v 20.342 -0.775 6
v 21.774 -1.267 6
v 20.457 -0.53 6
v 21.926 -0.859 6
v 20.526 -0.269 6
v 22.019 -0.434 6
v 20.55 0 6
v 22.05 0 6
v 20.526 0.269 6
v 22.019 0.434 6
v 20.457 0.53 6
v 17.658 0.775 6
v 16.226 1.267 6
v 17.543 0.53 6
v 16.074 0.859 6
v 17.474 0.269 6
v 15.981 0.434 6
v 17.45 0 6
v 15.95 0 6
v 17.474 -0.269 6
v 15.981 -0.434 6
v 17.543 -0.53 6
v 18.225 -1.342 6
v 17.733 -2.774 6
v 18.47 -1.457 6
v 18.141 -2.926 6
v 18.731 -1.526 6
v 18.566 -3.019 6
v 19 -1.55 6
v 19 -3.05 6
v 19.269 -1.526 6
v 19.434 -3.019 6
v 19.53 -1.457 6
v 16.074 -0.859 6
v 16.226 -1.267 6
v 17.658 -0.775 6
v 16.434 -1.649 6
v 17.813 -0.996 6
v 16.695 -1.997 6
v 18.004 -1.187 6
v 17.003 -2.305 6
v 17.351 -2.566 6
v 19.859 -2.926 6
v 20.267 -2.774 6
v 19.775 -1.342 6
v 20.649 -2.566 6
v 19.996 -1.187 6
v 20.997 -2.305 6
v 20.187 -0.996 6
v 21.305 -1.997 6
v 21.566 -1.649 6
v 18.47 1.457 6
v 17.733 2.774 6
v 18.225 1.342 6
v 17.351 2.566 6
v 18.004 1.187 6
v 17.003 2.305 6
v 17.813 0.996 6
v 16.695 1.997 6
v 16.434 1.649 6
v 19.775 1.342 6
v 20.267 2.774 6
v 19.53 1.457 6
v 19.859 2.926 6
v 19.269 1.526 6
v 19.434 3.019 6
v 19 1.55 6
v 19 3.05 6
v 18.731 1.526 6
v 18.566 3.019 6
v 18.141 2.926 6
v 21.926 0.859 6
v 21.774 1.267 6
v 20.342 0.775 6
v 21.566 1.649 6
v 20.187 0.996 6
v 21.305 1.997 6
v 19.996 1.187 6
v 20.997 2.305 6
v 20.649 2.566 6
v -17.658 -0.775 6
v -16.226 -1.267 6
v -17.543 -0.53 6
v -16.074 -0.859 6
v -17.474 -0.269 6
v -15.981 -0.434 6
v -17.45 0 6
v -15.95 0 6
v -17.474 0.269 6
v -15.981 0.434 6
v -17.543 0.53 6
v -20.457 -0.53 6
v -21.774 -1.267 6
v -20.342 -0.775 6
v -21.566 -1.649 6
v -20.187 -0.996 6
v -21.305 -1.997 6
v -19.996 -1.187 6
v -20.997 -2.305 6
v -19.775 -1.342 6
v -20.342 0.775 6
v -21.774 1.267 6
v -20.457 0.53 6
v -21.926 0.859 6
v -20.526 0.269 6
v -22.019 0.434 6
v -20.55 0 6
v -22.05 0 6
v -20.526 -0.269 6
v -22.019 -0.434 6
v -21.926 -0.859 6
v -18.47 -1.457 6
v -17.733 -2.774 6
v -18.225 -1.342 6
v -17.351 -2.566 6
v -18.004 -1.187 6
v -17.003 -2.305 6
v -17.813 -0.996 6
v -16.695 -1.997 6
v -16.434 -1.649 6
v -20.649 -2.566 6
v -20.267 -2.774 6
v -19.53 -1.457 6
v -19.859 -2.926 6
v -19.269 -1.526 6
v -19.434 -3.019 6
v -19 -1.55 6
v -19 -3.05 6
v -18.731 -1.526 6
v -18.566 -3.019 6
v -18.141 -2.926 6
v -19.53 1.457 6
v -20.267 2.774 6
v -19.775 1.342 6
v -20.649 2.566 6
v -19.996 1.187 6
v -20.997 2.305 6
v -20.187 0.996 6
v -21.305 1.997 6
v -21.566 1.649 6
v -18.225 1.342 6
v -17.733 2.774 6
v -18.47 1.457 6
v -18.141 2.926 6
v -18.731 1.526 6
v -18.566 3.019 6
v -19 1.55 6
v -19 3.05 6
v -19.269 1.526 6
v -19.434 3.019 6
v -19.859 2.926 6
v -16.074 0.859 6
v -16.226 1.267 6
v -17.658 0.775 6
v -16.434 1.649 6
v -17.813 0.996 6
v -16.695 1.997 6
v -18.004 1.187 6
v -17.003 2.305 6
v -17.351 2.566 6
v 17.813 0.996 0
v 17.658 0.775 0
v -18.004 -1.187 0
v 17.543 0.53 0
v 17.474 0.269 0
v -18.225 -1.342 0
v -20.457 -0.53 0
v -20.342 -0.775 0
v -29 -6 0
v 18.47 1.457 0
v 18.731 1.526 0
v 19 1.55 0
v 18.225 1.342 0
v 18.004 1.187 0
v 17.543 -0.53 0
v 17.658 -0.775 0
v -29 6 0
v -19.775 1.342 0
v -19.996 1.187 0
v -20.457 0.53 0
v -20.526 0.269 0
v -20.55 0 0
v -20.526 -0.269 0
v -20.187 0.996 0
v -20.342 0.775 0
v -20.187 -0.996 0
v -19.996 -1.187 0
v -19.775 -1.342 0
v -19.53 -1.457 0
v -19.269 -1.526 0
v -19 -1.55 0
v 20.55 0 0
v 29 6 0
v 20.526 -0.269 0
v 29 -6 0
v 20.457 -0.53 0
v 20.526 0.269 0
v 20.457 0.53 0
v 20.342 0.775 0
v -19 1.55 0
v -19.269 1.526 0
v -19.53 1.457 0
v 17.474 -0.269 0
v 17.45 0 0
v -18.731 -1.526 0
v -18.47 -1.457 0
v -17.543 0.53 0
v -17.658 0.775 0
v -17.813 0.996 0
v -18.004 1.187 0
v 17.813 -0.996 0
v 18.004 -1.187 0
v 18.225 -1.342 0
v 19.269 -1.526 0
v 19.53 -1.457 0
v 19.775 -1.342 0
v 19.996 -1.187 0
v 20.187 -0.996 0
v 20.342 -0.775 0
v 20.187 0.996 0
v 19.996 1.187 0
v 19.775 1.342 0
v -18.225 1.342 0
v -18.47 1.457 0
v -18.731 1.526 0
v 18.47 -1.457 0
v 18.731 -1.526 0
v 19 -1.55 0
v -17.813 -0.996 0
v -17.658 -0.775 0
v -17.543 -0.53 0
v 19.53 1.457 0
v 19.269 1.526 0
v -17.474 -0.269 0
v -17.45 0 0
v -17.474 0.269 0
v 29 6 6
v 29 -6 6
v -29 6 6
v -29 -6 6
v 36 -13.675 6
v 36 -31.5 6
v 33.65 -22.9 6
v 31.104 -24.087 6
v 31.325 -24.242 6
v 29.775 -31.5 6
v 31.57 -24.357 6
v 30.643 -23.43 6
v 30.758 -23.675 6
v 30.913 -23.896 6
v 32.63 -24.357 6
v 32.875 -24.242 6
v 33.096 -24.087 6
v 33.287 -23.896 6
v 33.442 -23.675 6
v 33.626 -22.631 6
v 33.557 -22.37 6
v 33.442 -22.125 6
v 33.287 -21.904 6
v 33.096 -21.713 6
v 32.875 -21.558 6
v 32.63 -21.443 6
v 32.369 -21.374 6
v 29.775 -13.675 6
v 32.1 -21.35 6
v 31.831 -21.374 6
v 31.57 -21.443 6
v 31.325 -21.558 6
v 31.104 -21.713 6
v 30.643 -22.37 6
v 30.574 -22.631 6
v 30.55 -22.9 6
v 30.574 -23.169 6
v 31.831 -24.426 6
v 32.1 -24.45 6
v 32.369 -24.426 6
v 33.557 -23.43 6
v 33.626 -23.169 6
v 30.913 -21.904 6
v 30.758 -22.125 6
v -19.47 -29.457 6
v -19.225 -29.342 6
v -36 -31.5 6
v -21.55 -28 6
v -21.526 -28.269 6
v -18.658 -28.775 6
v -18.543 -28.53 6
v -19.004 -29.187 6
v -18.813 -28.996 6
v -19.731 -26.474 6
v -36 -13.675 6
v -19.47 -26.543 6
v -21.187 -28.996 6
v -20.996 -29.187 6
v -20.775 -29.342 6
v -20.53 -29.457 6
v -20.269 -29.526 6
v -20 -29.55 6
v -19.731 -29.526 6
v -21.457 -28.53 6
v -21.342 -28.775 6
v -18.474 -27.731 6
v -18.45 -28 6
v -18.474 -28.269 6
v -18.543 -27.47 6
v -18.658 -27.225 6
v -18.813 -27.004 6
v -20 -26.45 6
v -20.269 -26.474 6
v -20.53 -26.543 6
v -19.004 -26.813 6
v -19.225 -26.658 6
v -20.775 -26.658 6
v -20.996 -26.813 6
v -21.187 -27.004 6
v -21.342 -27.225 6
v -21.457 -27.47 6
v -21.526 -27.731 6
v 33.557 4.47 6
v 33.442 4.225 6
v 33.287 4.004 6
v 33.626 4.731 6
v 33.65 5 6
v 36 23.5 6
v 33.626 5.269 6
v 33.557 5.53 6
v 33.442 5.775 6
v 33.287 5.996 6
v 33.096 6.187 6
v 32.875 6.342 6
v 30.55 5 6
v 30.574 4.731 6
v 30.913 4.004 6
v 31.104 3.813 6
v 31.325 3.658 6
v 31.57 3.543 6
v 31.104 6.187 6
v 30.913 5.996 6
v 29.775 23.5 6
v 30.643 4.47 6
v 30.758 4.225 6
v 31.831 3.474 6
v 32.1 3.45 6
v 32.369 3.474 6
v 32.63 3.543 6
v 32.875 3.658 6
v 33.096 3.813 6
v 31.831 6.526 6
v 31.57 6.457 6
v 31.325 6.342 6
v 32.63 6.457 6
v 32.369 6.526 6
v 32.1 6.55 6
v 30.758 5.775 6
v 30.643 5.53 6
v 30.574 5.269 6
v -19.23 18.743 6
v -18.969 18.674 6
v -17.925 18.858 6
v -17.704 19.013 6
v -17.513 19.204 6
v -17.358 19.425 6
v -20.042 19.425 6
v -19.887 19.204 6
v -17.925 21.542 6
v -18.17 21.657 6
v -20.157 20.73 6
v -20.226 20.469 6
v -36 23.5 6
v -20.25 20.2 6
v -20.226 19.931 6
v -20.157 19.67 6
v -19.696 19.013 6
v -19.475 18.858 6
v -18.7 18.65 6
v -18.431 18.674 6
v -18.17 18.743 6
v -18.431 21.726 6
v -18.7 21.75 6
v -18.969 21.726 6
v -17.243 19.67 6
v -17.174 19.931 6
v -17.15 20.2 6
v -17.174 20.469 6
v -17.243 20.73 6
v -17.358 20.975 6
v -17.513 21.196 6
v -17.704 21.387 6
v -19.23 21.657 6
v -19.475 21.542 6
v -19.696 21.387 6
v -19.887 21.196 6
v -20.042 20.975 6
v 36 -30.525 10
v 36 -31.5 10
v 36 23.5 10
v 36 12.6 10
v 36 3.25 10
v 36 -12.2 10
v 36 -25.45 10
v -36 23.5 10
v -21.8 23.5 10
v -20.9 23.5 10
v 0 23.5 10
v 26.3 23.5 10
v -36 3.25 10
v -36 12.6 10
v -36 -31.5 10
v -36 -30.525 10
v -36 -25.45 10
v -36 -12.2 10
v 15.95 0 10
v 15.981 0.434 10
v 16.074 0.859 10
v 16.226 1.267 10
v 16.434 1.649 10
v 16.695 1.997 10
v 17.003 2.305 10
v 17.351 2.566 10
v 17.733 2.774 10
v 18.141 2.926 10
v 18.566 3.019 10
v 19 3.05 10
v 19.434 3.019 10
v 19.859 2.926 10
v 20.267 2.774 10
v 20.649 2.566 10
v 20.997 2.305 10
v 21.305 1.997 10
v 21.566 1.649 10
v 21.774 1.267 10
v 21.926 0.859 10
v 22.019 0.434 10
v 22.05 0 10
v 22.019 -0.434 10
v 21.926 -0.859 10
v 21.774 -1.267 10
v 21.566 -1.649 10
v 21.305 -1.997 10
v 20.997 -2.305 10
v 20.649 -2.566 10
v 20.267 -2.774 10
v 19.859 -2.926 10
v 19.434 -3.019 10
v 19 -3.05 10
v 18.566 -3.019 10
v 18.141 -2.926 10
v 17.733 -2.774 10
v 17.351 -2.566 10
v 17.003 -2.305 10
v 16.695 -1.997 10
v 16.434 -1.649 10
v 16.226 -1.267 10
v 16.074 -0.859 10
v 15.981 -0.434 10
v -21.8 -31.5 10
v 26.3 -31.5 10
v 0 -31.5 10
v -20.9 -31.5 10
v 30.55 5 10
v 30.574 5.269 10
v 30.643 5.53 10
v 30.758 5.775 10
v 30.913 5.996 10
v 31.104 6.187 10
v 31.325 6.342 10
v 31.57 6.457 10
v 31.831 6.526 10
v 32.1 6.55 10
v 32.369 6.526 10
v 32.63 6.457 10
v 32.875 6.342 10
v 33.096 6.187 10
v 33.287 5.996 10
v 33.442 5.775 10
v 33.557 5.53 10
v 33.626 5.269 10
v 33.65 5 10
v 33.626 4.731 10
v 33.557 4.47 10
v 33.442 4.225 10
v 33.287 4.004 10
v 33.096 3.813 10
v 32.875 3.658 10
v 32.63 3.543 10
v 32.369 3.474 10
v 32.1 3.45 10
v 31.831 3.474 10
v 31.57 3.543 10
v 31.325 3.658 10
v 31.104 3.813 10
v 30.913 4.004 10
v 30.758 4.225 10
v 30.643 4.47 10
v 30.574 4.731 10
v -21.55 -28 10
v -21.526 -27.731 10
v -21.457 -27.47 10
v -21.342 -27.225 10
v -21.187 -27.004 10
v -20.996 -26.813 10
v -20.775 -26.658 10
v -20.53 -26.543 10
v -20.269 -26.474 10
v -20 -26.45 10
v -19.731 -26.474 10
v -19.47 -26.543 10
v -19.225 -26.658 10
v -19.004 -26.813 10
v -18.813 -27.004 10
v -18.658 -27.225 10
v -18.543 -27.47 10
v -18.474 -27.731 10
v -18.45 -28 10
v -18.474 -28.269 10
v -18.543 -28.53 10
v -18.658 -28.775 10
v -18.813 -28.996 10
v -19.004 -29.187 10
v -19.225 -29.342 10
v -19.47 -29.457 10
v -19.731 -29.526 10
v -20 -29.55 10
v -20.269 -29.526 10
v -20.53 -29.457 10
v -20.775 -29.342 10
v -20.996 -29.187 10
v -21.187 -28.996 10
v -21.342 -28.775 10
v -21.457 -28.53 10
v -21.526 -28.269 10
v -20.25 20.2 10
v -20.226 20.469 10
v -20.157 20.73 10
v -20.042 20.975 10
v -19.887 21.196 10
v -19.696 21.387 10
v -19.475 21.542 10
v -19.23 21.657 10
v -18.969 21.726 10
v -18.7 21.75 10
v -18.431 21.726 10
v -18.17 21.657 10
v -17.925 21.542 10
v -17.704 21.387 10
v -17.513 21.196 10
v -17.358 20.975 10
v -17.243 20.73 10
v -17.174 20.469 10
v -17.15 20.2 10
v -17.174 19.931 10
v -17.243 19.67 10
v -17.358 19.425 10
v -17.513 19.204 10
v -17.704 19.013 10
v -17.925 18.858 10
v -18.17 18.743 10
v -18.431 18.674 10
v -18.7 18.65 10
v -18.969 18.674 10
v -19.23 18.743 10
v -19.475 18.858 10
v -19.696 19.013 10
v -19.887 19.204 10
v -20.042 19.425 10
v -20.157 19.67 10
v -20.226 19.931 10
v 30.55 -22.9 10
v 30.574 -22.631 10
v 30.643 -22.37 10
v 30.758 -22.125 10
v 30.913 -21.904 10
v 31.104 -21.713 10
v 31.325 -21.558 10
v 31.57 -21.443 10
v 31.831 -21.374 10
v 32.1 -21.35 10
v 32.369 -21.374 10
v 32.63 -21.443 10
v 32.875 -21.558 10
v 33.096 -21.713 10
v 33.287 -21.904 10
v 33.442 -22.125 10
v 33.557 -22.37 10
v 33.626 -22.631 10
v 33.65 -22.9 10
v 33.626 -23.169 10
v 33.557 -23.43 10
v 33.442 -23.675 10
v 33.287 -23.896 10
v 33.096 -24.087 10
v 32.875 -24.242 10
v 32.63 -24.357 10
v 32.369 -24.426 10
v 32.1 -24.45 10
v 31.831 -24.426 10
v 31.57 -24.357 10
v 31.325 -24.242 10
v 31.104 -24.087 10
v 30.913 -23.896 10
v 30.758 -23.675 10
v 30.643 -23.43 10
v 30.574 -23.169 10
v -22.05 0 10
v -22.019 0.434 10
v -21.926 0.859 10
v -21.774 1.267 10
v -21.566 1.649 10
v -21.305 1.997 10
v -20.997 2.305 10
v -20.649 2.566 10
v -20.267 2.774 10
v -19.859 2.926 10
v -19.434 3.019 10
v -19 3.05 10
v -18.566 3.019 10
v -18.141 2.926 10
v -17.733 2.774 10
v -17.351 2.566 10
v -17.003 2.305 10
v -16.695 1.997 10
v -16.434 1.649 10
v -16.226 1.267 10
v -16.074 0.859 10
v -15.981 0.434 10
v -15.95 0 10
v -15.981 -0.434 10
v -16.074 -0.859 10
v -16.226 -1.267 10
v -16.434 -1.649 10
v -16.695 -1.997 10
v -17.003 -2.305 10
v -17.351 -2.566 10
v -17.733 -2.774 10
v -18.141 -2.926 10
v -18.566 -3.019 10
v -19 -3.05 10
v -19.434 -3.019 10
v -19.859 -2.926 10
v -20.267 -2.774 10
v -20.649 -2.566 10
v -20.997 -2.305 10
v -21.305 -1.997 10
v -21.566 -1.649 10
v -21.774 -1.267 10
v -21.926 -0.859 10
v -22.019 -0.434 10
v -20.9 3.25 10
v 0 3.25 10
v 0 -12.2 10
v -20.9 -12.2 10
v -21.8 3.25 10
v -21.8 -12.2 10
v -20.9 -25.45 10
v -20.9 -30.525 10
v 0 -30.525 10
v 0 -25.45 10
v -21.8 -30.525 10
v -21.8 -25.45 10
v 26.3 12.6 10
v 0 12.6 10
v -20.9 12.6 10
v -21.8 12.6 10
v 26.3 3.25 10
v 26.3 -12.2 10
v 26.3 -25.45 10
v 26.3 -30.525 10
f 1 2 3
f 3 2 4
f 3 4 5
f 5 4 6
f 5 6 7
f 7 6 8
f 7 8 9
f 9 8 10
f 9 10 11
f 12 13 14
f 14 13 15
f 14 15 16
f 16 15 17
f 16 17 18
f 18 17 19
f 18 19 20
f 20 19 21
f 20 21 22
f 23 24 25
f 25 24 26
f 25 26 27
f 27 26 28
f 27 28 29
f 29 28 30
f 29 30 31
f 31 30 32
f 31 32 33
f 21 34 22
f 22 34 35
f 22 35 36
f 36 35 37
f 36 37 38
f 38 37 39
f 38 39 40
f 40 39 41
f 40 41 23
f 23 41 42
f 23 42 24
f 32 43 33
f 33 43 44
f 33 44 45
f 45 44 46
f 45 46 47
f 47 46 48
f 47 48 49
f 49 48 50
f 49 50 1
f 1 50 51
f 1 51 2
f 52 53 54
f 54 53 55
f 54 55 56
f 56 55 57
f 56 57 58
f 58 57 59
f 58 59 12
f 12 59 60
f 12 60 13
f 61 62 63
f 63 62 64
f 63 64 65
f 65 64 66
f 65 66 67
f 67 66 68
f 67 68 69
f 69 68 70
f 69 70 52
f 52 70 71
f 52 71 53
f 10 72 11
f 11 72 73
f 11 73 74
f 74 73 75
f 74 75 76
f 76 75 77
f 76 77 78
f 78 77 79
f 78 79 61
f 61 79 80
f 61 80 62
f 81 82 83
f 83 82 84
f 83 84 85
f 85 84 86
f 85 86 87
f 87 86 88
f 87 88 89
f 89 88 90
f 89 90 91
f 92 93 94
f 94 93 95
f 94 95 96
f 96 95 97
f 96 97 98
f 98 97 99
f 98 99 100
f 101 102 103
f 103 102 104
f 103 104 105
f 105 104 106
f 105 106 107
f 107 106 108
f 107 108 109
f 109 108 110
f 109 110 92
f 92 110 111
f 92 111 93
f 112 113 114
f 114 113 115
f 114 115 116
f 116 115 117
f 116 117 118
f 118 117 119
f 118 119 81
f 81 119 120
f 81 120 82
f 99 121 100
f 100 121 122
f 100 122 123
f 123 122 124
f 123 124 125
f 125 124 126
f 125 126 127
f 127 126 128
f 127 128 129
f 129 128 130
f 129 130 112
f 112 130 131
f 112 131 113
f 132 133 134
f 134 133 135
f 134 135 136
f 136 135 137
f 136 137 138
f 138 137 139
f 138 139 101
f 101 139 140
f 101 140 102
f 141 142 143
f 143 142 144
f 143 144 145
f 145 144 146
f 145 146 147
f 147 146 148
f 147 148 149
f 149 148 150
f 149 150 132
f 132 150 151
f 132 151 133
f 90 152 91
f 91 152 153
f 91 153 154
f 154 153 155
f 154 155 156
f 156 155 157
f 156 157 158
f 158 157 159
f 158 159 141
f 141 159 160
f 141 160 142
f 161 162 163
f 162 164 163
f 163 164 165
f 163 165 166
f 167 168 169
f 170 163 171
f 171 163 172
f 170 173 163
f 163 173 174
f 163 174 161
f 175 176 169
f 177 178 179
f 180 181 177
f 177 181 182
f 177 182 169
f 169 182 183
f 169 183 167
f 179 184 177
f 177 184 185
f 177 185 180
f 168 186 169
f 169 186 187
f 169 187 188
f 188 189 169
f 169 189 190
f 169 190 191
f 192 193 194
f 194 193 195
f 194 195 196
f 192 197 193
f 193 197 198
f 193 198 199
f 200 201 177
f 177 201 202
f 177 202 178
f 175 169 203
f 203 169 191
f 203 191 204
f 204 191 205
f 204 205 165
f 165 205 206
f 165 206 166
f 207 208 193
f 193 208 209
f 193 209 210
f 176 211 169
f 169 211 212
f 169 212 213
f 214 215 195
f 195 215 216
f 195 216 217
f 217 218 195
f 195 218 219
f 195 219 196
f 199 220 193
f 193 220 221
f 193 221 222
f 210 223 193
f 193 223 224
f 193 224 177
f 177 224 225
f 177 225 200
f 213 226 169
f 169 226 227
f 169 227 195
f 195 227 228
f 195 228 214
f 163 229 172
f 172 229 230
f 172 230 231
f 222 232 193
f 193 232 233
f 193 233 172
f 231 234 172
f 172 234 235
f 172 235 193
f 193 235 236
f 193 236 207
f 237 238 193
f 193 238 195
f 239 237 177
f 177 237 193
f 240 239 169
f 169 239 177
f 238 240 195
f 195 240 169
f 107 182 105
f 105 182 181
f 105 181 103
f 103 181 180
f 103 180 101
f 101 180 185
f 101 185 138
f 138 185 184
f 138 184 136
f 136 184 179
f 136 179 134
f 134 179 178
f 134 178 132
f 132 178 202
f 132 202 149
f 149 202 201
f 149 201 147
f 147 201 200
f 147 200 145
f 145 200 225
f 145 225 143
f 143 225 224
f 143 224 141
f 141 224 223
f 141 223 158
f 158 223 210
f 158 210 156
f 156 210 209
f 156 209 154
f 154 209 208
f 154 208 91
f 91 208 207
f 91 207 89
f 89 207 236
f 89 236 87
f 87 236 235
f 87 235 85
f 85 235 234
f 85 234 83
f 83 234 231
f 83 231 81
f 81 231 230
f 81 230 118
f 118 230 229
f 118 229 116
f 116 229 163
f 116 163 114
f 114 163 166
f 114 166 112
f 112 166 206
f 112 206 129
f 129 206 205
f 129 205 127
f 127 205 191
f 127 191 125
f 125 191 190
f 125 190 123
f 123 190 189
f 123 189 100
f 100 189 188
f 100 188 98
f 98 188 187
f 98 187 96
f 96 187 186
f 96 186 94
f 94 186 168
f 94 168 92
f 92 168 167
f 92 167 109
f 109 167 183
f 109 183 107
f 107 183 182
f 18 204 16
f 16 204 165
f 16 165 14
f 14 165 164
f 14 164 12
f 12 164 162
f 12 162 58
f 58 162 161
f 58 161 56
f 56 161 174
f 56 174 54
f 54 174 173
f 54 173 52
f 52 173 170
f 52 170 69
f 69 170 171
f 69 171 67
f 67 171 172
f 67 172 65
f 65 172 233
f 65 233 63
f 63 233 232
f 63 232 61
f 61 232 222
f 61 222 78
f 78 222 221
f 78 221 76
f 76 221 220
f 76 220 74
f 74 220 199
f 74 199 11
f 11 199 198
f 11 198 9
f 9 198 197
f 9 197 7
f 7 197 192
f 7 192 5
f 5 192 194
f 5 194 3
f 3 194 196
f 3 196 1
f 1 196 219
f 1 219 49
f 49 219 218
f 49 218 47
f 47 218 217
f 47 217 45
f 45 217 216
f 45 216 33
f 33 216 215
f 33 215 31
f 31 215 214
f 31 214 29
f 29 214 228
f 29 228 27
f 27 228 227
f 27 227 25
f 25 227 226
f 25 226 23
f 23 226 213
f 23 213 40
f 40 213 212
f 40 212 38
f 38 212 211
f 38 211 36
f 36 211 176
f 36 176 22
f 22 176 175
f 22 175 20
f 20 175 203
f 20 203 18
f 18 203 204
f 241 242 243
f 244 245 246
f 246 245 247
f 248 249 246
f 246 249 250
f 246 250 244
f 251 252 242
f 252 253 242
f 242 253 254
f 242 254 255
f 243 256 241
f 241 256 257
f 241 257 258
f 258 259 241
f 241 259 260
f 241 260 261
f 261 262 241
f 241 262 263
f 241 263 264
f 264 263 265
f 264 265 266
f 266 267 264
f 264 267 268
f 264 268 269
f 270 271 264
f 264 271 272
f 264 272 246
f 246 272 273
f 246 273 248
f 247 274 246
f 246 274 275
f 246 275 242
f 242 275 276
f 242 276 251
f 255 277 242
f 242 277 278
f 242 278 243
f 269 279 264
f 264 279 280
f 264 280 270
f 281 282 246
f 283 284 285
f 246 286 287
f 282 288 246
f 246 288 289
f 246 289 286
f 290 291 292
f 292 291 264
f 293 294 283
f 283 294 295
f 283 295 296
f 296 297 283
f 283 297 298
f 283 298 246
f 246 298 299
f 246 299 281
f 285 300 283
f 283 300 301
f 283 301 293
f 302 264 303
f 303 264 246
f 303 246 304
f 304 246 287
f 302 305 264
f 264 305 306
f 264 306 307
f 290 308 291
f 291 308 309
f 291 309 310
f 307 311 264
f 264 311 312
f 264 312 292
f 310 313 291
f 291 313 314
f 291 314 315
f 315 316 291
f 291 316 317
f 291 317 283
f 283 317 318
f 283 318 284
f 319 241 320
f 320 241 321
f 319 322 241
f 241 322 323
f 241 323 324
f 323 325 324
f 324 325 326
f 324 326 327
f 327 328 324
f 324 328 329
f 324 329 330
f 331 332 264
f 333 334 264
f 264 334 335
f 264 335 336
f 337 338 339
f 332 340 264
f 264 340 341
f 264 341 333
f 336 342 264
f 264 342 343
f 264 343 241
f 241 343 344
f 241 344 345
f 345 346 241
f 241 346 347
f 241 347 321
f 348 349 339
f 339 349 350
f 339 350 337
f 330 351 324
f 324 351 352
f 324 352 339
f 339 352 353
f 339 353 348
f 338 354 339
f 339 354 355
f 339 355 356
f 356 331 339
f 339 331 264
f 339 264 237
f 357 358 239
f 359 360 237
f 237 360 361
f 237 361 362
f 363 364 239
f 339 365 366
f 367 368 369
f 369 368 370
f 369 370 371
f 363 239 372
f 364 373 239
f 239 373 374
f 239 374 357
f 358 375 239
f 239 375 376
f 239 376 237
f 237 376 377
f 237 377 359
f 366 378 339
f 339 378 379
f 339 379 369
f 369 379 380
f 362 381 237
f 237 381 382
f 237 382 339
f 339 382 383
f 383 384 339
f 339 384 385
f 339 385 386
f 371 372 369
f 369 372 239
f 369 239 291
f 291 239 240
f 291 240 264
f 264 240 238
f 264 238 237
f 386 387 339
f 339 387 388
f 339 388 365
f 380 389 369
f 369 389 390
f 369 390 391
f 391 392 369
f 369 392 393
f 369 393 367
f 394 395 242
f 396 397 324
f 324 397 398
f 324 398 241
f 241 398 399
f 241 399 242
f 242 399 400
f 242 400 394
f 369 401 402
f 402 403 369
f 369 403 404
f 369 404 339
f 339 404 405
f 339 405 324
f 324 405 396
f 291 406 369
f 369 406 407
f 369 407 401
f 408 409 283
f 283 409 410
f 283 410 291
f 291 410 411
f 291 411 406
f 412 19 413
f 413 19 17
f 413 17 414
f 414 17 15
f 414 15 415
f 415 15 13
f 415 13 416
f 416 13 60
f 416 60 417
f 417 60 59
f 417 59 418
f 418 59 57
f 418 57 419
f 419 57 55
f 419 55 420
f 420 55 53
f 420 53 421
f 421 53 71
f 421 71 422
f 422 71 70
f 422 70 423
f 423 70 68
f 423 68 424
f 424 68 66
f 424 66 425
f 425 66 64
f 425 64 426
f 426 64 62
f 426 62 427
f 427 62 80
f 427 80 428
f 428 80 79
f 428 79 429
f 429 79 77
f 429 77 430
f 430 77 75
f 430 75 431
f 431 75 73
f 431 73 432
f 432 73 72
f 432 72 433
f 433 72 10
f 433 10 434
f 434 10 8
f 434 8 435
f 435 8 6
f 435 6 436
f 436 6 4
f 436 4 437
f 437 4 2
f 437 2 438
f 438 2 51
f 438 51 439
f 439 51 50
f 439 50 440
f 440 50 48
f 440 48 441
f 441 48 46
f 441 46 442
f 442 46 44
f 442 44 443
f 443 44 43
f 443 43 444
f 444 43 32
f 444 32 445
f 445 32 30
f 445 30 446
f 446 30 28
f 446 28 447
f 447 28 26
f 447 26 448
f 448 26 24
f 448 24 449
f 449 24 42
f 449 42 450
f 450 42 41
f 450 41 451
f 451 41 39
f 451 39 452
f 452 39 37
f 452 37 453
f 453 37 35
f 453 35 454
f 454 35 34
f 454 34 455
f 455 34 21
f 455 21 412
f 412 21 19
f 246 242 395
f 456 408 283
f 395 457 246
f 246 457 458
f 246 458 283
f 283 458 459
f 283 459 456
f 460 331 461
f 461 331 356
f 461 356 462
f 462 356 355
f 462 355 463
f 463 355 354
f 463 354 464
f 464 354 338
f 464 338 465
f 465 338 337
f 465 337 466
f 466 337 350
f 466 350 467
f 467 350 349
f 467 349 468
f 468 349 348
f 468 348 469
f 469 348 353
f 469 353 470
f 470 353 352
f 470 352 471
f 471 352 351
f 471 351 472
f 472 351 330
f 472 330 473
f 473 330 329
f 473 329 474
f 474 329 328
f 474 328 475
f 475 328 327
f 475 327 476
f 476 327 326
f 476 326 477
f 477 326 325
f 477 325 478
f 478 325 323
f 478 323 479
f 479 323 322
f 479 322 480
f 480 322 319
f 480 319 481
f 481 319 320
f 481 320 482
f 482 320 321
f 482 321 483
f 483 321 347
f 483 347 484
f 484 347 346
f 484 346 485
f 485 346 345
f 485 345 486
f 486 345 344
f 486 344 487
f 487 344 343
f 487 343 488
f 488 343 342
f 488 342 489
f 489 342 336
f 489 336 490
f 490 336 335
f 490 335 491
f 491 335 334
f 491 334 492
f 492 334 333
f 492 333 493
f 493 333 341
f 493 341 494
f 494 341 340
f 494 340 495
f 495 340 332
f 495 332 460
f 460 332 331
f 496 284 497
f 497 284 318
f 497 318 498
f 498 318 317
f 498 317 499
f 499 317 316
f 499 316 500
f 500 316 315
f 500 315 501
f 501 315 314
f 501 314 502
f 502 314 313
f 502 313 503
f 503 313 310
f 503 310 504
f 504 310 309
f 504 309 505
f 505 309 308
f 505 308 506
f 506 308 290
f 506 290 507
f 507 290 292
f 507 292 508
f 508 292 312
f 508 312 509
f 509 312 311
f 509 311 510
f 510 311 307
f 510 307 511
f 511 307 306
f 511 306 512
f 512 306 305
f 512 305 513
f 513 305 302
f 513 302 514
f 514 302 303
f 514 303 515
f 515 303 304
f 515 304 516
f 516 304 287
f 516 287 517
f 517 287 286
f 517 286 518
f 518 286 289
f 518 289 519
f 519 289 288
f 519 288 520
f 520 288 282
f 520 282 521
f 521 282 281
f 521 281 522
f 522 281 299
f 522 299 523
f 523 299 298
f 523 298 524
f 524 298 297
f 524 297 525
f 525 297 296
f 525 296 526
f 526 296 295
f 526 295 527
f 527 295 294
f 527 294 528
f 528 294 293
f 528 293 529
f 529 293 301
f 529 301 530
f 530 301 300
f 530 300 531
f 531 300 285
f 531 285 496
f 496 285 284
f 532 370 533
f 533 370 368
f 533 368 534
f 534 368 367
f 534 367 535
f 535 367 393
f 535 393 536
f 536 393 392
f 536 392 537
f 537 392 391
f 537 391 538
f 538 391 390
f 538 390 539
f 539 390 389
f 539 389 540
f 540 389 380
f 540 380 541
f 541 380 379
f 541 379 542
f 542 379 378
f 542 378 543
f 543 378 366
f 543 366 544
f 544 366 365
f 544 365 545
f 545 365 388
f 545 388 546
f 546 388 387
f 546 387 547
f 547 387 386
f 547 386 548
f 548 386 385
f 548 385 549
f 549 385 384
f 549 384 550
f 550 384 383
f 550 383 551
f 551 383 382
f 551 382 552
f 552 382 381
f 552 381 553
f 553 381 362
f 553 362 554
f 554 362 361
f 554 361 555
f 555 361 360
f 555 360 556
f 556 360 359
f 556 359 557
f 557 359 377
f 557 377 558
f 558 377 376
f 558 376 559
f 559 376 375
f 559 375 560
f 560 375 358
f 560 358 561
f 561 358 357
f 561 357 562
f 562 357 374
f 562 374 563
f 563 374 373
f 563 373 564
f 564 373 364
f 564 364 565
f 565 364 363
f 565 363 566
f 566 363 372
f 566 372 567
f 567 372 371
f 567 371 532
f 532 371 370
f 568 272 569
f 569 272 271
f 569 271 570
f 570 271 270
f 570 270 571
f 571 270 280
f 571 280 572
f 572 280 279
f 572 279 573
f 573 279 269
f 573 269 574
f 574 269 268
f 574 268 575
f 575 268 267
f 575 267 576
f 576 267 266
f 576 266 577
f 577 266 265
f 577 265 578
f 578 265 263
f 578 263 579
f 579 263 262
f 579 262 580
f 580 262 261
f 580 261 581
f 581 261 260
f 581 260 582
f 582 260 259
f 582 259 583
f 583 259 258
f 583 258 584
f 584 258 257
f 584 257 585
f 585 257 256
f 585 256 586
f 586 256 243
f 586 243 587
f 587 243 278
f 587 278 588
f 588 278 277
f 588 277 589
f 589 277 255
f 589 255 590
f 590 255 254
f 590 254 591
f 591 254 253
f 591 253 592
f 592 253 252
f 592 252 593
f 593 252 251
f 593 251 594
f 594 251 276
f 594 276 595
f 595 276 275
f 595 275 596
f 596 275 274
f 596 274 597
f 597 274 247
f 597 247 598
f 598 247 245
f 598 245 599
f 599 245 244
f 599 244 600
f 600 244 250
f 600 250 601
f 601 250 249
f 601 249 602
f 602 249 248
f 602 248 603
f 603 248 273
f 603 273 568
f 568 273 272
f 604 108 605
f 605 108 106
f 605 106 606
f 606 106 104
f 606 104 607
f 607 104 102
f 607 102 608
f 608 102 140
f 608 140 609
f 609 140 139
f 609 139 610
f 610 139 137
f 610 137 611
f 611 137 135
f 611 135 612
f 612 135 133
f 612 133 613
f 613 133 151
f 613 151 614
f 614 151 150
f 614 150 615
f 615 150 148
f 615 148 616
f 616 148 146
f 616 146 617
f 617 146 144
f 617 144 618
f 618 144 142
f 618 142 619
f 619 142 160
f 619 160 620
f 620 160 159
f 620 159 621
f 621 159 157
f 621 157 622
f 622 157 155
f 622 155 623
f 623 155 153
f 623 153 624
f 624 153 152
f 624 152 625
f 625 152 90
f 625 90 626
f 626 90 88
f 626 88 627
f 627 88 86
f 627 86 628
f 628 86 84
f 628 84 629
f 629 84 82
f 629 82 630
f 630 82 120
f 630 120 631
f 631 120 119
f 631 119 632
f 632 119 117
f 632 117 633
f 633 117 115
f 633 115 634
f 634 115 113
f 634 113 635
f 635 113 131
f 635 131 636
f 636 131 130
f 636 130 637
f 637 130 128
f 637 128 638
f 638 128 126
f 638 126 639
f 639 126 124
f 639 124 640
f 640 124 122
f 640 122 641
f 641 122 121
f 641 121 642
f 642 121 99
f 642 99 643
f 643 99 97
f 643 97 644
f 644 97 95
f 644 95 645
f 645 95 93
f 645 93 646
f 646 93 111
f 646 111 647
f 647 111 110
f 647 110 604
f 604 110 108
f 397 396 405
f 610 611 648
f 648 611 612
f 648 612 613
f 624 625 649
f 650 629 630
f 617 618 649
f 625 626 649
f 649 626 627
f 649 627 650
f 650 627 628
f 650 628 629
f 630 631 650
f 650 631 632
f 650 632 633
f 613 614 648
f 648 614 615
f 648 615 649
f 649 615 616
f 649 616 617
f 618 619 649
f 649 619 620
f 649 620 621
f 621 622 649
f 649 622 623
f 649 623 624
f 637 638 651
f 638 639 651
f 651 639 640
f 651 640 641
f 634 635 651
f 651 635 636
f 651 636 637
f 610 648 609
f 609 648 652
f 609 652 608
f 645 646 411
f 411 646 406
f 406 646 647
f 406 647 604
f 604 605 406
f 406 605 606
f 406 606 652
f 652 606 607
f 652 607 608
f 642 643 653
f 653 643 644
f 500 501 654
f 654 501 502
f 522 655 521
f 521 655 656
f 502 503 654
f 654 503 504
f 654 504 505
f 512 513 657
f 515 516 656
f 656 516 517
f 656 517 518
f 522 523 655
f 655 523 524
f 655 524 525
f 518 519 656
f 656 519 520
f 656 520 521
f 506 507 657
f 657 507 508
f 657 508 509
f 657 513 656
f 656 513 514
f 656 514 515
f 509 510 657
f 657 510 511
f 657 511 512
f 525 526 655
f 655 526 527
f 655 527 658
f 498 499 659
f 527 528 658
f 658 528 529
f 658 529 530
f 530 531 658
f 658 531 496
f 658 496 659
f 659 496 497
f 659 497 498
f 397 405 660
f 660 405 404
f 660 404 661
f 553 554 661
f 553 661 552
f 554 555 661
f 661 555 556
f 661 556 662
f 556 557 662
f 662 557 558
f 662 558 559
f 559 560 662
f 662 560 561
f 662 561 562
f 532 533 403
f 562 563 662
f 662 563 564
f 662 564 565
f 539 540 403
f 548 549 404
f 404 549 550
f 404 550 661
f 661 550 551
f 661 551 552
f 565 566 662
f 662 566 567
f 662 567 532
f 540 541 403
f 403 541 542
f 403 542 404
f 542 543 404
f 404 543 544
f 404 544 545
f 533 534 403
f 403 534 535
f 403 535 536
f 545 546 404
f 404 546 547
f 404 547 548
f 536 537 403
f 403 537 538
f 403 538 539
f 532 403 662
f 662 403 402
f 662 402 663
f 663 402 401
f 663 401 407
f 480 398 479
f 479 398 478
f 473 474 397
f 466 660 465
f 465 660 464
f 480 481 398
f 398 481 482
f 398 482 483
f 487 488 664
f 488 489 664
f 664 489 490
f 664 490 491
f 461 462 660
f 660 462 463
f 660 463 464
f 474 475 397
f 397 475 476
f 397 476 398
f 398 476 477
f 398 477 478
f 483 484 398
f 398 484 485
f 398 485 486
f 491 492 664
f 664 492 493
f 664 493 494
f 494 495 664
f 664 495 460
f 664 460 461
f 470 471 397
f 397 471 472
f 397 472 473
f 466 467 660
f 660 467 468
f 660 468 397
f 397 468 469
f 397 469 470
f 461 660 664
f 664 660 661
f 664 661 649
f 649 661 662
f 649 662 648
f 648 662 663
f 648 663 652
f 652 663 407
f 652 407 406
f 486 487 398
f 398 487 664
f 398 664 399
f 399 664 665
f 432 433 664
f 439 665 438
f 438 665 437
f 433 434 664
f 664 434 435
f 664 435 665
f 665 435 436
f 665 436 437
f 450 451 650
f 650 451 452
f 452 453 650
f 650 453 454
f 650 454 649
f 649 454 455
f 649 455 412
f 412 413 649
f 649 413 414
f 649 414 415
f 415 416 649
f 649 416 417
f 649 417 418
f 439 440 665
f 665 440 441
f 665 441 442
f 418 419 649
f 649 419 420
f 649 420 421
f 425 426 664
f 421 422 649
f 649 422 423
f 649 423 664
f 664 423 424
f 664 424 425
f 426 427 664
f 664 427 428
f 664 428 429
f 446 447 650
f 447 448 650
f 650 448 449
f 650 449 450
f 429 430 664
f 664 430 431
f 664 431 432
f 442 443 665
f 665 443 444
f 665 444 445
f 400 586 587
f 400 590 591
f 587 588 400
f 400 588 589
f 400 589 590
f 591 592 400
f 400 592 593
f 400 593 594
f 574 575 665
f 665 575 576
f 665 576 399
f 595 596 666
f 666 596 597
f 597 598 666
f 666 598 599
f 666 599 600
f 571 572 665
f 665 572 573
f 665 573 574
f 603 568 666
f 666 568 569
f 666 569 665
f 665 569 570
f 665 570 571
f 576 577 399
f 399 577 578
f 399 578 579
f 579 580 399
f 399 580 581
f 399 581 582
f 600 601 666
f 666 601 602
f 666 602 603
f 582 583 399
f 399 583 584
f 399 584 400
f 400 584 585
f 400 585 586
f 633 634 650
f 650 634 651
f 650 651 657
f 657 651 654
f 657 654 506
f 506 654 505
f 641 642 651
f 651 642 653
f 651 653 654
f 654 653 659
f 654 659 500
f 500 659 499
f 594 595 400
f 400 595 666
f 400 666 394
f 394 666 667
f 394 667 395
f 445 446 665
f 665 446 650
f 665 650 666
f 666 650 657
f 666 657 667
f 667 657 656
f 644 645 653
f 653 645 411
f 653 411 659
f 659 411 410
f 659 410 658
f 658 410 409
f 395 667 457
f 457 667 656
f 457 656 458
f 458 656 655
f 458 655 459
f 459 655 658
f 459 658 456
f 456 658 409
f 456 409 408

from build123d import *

# Parameters (mm, degrees)
SKETCH1_W           = 58
SKETCH1_H           = 12
SKETCH1_R           = 1.55
BOSS_EXTRUDE1_DEPTH = 6
SKETCH2_W           = 72
SKETCH2_H           = 55
SKETCH2_R           = 1.55
SKETCH2_R_2         = 3.05
BOSS_EXTRUDE2_DEPTH = 4


with BuildPart() as part:
    # Sketch1 → Boss-Extrude1 (new body)
    with BuildSketch(Plane.XY):
        Rectangle(SKETCH1_W, SKETCH1_H)
        with Locations((-19, 0)):
            Circle(SKETCH1_R, mode=Mode.SUBTRACT)
        with Locations((19, 0)):
            Circle(SKETCH1_R, mode=Mode.SUBTRACT)
    extrude(amount=BOSS_EXTRUDE1_DEPTH)

    # Sketch2 → Boss-Extrude2 (add)
    with BuildSketch(Plane.XY.offset(6)):
        with Locations((0, -4)):
            Rectangle(SKETCH2_W, SKETCH2_H)
        with Locations((32.1, 5)):
            Circle(SKETCH2_R, mode=Mode.SUBTRACT)
        with Locations((-20, -28)):
            Circle(SKETCH2_R, mode=Mode.SUBTRACT)
        with Locations((-18.7, 20.2)):
            Circle(SKETCH2_R, mode=Mode.SUBTRACT)
        with Locations((32.1, -22.9)):
            Circle(SKETCH2_R, mode=Mode.SUBTRACT)
        with Locations((-19, 0)):
            Circle(SKETCH2_R_2, mode=Mode.SUBTRACT)
        with Locations((19, 0)):
            Circle(SKETCH2_R_2, mode=Mode.SUBTRACT)
    extrude(amount=BOSS_EXTRUDE2_DEPTH)


solid = part.part
